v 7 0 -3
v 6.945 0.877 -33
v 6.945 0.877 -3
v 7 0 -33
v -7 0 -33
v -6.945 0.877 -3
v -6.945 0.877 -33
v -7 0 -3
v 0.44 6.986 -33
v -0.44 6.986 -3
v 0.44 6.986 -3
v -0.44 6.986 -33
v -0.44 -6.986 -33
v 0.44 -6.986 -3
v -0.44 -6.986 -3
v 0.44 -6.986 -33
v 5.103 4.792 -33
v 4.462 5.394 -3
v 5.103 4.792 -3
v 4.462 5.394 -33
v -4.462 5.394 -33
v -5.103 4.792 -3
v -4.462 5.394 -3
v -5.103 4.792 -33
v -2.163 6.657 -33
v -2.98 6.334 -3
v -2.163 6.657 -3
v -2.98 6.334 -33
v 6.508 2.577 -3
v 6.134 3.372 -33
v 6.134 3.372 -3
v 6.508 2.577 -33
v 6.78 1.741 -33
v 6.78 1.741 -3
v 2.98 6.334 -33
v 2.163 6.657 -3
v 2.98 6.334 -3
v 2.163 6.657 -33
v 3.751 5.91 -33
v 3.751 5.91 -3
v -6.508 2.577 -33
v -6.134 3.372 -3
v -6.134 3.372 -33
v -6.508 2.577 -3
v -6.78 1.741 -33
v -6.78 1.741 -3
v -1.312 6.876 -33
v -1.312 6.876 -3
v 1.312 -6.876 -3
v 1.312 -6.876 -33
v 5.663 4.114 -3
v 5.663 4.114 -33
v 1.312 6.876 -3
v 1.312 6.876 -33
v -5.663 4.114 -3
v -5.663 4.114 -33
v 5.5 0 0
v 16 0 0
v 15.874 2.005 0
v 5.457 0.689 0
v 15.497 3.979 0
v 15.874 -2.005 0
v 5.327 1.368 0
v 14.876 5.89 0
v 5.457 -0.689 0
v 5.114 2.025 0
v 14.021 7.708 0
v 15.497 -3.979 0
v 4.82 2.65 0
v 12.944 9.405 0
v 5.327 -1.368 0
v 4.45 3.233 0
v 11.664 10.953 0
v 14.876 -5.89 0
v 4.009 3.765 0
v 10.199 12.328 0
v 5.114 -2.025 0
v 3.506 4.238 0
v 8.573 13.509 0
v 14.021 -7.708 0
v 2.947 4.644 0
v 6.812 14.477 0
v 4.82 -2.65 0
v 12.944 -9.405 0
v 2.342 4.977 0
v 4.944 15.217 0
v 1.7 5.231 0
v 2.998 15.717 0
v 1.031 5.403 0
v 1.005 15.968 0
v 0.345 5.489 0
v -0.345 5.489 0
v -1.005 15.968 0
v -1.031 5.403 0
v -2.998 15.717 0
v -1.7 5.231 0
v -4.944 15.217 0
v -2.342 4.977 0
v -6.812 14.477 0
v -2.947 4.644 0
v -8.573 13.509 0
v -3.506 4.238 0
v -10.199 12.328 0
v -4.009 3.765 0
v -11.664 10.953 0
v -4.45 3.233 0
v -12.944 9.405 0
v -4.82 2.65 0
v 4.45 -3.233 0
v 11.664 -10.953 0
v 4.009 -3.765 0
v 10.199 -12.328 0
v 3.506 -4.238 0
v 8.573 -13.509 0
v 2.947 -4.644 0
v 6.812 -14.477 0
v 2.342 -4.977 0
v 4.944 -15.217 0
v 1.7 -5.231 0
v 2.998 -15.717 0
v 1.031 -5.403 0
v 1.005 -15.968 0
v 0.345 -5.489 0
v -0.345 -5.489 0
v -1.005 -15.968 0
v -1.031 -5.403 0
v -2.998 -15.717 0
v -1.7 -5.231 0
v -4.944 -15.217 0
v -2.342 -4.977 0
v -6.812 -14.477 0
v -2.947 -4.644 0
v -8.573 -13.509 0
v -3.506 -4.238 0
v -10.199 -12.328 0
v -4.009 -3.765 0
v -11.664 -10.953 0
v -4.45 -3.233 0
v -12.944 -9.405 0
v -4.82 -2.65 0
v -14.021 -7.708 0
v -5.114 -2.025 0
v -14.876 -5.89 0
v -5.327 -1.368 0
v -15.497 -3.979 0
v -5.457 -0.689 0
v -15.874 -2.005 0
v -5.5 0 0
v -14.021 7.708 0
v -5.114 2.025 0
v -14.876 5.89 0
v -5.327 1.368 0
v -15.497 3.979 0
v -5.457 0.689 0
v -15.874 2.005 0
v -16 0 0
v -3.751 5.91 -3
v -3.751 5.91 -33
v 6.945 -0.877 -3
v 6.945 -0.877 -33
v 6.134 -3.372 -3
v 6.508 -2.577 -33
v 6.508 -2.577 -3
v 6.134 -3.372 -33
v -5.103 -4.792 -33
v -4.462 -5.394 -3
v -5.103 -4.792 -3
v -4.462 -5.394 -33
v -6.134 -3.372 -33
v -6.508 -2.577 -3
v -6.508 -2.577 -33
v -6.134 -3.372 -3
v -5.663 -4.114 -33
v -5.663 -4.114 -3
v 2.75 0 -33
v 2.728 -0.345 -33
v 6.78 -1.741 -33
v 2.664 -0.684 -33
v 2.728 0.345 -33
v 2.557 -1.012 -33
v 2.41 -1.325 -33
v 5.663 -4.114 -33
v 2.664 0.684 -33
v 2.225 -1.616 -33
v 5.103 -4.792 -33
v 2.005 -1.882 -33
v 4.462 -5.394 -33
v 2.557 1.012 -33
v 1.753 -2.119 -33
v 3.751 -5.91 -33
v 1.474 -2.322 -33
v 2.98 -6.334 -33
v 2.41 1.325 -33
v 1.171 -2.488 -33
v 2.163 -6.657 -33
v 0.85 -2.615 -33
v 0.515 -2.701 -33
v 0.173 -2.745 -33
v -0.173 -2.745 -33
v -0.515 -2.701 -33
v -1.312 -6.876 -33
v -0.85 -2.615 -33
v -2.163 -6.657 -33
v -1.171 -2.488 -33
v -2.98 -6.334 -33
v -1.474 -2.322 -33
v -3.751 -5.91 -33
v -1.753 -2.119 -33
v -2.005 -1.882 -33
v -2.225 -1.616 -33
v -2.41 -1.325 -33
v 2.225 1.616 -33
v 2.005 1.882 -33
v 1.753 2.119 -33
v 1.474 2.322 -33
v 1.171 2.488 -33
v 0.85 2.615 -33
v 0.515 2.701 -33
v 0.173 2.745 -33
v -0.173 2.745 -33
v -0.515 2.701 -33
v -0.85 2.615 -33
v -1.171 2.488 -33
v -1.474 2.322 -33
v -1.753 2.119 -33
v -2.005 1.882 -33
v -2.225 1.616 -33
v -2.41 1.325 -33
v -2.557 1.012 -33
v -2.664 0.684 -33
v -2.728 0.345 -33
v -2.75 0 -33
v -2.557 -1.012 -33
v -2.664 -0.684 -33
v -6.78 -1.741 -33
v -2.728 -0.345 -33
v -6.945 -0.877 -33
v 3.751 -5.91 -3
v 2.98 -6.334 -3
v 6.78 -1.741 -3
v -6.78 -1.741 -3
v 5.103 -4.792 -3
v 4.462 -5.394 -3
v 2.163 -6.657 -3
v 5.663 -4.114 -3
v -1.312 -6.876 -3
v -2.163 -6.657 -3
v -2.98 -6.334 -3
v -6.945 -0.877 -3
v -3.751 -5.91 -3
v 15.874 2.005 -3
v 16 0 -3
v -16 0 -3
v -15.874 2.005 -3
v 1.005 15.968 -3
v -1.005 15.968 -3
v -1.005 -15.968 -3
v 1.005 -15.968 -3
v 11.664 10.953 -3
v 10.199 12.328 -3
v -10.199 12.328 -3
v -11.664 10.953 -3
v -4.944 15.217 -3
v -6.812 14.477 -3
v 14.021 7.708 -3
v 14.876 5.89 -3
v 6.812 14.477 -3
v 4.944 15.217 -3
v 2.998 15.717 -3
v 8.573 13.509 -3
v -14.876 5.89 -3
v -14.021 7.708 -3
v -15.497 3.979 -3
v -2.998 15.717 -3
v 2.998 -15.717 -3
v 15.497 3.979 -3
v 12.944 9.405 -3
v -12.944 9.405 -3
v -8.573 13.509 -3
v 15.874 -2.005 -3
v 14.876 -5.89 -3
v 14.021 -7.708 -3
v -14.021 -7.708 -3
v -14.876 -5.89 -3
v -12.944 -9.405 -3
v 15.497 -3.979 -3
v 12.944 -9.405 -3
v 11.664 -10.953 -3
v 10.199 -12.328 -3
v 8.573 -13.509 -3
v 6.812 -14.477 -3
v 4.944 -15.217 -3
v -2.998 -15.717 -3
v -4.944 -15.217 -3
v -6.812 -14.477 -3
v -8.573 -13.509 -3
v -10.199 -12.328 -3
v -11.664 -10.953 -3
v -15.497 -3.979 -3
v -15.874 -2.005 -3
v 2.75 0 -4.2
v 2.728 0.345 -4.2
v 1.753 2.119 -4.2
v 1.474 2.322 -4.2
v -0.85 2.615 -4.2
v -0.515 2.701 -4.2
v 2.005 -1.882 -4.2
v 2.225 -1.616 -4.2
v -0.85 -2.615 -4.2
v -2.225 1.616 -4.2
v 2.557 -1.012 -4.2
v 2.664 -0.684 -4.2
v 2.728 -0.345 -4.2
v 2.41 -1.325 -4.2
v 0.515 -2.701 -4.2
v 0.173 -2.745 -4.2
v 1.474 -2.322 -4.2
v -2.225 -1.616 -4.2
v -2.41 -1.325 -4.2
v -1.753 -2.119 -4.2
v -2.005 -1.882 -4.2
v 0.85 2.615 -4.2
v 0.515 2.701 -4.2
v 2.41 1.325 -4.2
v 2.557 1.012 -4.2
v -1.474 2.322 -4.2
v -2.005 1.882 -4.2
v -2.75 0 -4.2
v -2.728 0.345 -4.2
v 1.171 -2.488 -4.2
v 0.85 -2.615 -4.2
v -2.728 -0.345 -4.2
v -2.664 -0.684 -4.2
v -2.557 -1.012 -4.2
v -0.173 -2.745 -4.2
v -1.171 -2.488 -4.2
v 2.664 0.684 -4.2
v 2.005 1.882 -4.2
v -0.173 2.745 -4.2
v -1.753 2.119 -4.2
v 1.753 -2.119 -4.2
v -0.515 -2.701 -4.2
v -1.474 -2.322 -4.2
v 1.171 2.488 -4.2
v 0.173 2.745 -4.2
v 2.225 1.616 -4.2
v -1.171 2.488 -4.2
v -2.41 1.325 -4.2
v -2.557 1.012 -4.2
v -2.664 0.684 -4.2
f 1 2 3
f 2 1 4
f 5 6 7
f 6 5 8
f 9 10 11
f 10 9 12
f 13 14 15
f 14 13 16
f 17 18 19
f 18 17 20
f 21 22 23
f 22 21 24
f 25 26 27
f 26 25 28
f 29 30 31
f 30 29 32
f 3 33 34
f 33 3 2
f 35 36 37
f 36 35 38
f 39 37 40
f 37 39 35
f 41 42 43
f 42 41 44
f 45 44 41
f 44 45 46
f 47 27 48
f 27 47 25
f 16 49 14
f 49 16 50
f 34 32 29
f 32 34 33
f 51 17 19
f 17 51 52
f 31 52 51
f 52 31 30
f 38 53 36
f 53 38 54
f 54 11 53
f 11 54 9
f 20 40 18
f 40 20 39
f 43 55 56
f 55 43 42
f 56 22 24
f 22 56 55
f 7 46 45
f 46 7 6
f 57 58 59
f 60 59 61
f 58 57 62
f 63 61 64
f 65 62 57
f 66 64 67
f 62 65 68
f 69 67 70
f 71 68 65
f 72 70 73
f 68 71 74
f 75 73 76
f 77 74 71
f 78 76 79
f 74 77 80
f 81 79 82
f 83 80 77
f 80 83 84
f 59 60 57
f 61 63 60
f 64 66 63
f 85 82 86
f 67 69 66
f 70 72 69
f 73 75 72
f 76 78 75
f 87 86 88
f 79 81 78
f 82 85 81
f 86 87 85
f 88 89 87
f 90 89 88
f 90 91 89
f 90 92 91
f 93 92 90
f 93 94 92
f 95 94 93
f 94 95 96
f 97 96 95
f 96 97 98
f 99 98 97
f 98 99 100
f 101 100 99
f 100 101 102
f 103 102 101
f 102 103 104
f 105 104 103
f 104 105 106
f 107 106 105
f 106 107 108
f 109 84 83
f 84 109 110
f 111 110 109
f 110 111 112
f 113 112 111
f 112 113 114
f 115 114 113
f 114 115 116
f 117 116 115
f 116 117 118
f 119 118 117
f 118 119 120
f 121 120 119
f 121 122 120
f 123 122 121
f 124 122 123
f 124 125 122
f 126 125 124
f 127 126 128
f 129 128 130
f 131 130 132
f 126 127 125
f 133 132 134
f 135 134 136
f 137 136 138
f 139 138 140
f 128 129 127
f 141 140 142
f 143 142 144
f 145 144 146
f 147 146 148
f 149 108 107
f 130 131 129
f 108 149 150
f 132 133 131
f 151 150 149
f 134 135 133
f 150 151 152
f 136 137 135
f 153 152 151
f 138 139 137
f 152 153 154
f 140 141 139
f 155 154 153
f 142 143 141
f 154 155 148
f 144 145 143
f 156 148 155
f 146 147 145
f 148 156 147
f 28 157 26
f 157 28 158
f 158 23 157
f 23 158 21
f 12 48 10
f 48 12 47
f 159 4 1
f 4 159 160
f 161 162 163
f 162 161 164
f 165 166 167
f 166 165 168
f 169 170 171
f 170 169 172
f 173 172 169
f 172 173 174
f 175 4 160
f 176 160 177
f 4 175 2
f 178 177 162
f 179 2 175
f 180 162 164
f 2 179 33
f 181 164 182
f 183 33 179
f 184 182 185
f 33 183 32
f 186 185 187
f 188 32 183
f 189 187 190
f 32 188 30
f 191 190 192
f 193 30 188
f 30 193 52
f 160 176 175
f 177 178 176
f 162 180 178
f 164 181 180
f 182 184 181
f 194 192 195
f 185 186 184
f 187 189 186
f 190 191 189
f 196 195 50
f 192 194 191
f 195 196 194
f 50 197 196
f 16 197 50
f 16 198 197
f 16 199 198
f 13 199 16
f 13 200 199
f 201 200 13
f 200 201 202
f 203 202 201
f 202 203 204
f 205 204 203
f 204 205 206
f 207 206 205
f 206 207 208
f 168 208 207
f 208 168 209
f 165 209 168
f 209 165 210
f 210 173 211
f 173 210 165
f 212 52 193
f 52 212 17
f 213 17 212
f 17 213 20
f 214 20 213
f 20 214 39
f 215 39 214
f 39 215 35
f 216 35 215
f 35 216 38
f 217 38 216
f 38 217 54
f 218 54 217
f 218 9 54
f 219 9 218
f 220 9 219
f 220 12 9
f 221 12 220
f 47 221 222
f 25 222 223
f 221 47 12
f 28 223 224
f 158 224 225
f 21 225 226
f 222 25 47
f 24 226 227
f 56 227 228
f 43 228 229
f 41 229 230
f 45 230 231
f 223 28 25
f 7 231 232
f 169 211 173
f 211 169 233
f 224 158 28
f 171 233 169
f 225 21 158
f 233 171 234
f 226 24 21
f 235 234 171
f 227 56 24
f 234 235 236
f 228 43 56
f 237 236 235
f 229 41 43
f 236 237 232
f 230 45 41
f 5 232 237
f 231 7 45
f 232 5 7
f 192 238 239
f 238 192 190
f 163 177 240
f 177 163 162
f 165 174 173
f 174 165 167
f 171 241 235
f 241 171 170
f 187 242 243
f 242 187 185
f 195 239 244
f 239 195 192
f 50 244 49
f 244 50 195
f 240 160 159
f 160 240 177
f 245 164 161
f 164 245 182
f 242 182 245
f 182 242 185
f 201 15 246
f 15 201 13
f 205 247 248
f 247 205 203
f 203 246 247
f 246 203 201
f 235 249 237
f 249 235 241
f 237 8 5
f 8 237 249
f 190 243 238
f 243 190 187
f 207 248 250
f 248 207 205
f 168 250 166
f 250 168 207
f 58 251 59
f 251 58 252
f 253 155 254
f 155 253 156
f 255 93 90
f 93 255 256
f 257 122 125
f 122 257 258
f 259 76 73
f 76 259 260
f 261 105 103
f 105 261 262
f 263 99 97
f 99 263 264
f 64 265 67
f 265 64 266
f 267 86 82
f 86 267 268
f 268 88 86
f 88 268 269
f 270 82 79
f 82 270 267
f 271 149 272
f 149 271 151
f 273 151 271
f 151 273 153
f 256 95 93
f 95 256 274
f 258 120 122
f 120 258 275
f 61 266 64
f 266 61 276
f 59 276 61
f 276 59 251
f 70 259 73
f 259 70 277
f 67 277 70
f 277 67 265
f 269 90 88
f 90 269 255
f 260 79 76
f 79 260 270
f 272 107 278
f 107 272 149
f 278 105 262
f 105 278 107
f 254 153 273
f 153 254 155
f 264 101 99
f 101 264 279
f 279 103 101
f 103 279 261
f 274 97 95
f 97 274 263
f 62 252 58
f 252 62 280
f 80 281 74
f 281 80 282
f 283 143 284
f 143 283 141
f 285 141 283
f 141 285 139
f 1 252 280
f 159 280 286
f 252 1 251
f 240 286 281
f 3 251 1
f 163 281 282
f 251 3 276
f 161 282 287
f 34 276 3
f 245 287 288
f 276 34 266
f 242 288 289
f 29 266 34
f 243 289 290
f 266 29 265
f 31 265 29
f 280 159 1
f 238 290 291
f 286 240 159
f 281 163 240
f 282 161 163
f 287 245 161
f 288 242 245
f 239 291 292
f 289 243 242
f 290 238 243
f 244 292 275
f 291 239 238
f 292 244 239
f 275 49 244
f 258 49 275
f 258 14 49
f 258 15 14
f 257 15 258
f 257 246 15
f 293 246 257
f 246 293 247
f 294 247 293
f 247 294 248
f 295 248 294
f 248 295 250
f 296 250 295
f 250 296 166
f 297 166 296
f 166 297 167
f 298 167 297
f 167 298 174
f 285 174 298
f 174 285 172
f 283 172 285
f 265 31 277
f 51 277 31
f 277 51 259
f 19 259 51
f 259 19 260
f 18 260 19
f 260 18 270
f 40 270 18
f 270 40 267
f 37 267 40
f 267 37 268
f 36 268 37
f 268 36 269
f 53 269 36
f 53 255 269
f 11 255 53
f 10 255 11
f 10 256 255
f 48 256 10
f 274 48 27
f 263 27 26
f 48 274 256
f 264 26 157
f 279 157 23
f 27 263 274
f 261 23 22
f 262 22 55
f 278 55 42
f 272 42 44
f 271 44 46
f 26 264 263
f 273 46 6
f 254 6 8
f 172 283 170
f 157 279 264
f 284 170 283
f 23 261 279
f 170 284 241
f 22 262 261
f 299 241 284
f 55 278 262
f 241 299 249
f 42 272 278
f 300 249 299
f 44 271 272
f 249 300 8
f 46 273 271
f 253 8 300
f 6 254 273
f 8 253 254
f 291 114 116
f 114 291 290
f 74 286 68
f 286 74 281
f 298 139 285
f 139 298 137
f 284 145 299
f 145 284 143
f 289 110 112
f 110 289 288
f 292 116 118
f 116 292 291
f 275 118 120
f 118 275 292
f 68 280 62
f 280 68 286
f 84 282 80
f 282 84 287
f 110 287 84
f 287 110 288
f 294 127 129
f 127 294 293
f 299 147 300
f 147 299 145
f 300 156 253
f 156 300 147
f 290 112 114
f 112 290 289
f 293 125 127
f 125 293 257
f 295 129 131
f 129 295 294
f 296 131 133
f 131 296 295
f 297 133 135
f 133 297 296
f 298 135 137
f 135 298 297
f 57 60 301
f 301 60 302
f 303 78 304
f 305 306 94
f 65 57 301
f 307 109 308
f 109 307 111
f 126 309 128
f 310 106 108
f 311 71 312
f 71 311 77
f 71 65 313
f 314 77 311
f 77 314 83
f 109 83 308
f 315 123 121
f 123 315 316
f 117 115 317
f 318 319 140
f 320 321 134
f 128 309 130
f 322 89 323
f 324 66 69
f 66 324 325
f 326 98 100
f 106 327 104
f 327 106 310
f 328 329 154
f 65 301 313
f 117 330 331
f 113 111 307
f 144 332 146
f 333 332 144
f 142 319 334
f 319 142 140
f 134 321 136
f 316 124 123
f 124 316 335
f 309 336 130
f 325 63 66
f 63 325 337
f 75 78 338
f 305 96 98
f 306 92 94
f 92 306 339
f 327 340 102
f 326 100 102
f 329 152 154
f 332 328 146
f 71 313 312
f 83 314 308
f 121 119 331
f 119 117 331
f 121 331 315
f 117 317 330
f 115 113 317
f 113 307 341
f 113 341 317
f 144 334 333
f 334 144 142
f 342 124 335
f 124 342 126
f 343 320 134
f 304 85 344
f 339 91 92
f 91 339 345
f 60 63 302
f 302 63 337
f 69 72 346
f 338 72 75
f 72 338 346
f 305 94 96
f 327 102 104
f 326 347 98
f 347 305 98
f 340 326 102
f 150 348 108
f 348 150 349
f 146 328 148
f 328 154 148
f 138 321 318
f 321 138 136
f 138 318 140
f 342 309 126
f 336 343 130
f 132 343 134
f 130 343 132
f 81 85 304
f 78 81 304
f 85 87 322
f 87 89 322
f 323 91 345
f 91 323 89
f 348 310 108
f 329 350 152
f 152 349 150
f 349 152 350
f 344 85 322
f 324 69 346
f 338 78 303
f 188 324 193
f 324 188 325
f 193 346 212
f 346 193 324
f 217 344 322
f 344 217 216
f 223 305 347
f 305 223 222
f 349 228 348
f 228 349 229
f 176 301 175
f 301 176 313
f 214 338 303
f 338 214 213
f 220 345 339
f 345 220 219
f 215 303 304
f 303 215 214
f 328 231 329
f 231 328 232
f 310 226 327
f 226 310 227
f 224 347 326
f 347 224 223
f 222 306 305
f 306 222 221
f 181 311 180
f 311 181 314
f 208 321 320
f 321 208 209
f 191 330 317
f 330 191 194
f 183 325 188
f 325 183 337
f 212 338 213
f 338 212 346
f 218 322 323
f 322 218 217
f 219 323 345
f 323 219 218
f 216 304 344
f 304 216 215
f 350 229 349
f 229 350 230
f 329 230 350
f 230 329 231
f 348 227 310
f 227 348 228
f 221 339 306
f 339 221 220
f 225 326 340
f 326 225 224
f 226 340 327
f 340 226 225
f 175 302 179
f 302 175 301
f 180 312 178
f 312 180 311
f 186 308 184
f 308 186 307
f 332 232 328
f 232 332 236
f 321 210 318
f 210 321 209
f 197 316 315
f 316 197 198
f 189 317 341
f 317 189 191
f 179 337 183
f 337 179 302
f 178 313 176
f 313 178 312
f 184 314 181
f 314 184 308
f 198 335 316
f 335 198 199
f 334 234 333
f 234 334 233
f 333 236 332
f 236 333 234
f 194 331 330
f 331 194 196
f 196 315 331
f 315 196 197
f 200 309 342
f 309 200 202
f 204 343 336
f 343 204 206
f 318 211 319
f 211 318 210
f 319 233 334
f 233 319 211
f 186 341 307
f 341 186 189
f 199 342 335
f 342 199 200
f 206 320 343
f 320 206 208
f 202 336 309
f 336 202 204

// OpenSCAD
$fn = 50;


difference() {
	union() {
		translate(v = [0, 0, -33.0000000000]) {
			cylinder(h = 33, r = 7.0000000000);
		}
		translate(v = [0, 0, -3.0000000000]) {
			cylinder(h = 3, r = 16.0000000000);
		}
	}
	union() {
		translate(v = [0, 0, 0]) {
			rotate(a = [0, 0, 0]) {
				difference() {
					union() {
						#translate(v = [0, 0, -33.0000000000]) {
							cylinder(h = 33, r = 2.2500000000);
						}
						#translate(v = [0, 0, -4.2000000000]) {
							cylinder(h = 4.2000000000, r1 = 2.7500000000, r2 = 5.5000000000);
						}
						#translate(v = [0, 0, -33.0000000000]) {
							cylinder(h = 33, r = 2.7500000000);
						}
						#translate(v = [0, 0, -33.0000000000]) {
							cylinder(h = 33, r = 2.2500000000);
						}
					}
					union();
				}
			}
		}
	}
}
